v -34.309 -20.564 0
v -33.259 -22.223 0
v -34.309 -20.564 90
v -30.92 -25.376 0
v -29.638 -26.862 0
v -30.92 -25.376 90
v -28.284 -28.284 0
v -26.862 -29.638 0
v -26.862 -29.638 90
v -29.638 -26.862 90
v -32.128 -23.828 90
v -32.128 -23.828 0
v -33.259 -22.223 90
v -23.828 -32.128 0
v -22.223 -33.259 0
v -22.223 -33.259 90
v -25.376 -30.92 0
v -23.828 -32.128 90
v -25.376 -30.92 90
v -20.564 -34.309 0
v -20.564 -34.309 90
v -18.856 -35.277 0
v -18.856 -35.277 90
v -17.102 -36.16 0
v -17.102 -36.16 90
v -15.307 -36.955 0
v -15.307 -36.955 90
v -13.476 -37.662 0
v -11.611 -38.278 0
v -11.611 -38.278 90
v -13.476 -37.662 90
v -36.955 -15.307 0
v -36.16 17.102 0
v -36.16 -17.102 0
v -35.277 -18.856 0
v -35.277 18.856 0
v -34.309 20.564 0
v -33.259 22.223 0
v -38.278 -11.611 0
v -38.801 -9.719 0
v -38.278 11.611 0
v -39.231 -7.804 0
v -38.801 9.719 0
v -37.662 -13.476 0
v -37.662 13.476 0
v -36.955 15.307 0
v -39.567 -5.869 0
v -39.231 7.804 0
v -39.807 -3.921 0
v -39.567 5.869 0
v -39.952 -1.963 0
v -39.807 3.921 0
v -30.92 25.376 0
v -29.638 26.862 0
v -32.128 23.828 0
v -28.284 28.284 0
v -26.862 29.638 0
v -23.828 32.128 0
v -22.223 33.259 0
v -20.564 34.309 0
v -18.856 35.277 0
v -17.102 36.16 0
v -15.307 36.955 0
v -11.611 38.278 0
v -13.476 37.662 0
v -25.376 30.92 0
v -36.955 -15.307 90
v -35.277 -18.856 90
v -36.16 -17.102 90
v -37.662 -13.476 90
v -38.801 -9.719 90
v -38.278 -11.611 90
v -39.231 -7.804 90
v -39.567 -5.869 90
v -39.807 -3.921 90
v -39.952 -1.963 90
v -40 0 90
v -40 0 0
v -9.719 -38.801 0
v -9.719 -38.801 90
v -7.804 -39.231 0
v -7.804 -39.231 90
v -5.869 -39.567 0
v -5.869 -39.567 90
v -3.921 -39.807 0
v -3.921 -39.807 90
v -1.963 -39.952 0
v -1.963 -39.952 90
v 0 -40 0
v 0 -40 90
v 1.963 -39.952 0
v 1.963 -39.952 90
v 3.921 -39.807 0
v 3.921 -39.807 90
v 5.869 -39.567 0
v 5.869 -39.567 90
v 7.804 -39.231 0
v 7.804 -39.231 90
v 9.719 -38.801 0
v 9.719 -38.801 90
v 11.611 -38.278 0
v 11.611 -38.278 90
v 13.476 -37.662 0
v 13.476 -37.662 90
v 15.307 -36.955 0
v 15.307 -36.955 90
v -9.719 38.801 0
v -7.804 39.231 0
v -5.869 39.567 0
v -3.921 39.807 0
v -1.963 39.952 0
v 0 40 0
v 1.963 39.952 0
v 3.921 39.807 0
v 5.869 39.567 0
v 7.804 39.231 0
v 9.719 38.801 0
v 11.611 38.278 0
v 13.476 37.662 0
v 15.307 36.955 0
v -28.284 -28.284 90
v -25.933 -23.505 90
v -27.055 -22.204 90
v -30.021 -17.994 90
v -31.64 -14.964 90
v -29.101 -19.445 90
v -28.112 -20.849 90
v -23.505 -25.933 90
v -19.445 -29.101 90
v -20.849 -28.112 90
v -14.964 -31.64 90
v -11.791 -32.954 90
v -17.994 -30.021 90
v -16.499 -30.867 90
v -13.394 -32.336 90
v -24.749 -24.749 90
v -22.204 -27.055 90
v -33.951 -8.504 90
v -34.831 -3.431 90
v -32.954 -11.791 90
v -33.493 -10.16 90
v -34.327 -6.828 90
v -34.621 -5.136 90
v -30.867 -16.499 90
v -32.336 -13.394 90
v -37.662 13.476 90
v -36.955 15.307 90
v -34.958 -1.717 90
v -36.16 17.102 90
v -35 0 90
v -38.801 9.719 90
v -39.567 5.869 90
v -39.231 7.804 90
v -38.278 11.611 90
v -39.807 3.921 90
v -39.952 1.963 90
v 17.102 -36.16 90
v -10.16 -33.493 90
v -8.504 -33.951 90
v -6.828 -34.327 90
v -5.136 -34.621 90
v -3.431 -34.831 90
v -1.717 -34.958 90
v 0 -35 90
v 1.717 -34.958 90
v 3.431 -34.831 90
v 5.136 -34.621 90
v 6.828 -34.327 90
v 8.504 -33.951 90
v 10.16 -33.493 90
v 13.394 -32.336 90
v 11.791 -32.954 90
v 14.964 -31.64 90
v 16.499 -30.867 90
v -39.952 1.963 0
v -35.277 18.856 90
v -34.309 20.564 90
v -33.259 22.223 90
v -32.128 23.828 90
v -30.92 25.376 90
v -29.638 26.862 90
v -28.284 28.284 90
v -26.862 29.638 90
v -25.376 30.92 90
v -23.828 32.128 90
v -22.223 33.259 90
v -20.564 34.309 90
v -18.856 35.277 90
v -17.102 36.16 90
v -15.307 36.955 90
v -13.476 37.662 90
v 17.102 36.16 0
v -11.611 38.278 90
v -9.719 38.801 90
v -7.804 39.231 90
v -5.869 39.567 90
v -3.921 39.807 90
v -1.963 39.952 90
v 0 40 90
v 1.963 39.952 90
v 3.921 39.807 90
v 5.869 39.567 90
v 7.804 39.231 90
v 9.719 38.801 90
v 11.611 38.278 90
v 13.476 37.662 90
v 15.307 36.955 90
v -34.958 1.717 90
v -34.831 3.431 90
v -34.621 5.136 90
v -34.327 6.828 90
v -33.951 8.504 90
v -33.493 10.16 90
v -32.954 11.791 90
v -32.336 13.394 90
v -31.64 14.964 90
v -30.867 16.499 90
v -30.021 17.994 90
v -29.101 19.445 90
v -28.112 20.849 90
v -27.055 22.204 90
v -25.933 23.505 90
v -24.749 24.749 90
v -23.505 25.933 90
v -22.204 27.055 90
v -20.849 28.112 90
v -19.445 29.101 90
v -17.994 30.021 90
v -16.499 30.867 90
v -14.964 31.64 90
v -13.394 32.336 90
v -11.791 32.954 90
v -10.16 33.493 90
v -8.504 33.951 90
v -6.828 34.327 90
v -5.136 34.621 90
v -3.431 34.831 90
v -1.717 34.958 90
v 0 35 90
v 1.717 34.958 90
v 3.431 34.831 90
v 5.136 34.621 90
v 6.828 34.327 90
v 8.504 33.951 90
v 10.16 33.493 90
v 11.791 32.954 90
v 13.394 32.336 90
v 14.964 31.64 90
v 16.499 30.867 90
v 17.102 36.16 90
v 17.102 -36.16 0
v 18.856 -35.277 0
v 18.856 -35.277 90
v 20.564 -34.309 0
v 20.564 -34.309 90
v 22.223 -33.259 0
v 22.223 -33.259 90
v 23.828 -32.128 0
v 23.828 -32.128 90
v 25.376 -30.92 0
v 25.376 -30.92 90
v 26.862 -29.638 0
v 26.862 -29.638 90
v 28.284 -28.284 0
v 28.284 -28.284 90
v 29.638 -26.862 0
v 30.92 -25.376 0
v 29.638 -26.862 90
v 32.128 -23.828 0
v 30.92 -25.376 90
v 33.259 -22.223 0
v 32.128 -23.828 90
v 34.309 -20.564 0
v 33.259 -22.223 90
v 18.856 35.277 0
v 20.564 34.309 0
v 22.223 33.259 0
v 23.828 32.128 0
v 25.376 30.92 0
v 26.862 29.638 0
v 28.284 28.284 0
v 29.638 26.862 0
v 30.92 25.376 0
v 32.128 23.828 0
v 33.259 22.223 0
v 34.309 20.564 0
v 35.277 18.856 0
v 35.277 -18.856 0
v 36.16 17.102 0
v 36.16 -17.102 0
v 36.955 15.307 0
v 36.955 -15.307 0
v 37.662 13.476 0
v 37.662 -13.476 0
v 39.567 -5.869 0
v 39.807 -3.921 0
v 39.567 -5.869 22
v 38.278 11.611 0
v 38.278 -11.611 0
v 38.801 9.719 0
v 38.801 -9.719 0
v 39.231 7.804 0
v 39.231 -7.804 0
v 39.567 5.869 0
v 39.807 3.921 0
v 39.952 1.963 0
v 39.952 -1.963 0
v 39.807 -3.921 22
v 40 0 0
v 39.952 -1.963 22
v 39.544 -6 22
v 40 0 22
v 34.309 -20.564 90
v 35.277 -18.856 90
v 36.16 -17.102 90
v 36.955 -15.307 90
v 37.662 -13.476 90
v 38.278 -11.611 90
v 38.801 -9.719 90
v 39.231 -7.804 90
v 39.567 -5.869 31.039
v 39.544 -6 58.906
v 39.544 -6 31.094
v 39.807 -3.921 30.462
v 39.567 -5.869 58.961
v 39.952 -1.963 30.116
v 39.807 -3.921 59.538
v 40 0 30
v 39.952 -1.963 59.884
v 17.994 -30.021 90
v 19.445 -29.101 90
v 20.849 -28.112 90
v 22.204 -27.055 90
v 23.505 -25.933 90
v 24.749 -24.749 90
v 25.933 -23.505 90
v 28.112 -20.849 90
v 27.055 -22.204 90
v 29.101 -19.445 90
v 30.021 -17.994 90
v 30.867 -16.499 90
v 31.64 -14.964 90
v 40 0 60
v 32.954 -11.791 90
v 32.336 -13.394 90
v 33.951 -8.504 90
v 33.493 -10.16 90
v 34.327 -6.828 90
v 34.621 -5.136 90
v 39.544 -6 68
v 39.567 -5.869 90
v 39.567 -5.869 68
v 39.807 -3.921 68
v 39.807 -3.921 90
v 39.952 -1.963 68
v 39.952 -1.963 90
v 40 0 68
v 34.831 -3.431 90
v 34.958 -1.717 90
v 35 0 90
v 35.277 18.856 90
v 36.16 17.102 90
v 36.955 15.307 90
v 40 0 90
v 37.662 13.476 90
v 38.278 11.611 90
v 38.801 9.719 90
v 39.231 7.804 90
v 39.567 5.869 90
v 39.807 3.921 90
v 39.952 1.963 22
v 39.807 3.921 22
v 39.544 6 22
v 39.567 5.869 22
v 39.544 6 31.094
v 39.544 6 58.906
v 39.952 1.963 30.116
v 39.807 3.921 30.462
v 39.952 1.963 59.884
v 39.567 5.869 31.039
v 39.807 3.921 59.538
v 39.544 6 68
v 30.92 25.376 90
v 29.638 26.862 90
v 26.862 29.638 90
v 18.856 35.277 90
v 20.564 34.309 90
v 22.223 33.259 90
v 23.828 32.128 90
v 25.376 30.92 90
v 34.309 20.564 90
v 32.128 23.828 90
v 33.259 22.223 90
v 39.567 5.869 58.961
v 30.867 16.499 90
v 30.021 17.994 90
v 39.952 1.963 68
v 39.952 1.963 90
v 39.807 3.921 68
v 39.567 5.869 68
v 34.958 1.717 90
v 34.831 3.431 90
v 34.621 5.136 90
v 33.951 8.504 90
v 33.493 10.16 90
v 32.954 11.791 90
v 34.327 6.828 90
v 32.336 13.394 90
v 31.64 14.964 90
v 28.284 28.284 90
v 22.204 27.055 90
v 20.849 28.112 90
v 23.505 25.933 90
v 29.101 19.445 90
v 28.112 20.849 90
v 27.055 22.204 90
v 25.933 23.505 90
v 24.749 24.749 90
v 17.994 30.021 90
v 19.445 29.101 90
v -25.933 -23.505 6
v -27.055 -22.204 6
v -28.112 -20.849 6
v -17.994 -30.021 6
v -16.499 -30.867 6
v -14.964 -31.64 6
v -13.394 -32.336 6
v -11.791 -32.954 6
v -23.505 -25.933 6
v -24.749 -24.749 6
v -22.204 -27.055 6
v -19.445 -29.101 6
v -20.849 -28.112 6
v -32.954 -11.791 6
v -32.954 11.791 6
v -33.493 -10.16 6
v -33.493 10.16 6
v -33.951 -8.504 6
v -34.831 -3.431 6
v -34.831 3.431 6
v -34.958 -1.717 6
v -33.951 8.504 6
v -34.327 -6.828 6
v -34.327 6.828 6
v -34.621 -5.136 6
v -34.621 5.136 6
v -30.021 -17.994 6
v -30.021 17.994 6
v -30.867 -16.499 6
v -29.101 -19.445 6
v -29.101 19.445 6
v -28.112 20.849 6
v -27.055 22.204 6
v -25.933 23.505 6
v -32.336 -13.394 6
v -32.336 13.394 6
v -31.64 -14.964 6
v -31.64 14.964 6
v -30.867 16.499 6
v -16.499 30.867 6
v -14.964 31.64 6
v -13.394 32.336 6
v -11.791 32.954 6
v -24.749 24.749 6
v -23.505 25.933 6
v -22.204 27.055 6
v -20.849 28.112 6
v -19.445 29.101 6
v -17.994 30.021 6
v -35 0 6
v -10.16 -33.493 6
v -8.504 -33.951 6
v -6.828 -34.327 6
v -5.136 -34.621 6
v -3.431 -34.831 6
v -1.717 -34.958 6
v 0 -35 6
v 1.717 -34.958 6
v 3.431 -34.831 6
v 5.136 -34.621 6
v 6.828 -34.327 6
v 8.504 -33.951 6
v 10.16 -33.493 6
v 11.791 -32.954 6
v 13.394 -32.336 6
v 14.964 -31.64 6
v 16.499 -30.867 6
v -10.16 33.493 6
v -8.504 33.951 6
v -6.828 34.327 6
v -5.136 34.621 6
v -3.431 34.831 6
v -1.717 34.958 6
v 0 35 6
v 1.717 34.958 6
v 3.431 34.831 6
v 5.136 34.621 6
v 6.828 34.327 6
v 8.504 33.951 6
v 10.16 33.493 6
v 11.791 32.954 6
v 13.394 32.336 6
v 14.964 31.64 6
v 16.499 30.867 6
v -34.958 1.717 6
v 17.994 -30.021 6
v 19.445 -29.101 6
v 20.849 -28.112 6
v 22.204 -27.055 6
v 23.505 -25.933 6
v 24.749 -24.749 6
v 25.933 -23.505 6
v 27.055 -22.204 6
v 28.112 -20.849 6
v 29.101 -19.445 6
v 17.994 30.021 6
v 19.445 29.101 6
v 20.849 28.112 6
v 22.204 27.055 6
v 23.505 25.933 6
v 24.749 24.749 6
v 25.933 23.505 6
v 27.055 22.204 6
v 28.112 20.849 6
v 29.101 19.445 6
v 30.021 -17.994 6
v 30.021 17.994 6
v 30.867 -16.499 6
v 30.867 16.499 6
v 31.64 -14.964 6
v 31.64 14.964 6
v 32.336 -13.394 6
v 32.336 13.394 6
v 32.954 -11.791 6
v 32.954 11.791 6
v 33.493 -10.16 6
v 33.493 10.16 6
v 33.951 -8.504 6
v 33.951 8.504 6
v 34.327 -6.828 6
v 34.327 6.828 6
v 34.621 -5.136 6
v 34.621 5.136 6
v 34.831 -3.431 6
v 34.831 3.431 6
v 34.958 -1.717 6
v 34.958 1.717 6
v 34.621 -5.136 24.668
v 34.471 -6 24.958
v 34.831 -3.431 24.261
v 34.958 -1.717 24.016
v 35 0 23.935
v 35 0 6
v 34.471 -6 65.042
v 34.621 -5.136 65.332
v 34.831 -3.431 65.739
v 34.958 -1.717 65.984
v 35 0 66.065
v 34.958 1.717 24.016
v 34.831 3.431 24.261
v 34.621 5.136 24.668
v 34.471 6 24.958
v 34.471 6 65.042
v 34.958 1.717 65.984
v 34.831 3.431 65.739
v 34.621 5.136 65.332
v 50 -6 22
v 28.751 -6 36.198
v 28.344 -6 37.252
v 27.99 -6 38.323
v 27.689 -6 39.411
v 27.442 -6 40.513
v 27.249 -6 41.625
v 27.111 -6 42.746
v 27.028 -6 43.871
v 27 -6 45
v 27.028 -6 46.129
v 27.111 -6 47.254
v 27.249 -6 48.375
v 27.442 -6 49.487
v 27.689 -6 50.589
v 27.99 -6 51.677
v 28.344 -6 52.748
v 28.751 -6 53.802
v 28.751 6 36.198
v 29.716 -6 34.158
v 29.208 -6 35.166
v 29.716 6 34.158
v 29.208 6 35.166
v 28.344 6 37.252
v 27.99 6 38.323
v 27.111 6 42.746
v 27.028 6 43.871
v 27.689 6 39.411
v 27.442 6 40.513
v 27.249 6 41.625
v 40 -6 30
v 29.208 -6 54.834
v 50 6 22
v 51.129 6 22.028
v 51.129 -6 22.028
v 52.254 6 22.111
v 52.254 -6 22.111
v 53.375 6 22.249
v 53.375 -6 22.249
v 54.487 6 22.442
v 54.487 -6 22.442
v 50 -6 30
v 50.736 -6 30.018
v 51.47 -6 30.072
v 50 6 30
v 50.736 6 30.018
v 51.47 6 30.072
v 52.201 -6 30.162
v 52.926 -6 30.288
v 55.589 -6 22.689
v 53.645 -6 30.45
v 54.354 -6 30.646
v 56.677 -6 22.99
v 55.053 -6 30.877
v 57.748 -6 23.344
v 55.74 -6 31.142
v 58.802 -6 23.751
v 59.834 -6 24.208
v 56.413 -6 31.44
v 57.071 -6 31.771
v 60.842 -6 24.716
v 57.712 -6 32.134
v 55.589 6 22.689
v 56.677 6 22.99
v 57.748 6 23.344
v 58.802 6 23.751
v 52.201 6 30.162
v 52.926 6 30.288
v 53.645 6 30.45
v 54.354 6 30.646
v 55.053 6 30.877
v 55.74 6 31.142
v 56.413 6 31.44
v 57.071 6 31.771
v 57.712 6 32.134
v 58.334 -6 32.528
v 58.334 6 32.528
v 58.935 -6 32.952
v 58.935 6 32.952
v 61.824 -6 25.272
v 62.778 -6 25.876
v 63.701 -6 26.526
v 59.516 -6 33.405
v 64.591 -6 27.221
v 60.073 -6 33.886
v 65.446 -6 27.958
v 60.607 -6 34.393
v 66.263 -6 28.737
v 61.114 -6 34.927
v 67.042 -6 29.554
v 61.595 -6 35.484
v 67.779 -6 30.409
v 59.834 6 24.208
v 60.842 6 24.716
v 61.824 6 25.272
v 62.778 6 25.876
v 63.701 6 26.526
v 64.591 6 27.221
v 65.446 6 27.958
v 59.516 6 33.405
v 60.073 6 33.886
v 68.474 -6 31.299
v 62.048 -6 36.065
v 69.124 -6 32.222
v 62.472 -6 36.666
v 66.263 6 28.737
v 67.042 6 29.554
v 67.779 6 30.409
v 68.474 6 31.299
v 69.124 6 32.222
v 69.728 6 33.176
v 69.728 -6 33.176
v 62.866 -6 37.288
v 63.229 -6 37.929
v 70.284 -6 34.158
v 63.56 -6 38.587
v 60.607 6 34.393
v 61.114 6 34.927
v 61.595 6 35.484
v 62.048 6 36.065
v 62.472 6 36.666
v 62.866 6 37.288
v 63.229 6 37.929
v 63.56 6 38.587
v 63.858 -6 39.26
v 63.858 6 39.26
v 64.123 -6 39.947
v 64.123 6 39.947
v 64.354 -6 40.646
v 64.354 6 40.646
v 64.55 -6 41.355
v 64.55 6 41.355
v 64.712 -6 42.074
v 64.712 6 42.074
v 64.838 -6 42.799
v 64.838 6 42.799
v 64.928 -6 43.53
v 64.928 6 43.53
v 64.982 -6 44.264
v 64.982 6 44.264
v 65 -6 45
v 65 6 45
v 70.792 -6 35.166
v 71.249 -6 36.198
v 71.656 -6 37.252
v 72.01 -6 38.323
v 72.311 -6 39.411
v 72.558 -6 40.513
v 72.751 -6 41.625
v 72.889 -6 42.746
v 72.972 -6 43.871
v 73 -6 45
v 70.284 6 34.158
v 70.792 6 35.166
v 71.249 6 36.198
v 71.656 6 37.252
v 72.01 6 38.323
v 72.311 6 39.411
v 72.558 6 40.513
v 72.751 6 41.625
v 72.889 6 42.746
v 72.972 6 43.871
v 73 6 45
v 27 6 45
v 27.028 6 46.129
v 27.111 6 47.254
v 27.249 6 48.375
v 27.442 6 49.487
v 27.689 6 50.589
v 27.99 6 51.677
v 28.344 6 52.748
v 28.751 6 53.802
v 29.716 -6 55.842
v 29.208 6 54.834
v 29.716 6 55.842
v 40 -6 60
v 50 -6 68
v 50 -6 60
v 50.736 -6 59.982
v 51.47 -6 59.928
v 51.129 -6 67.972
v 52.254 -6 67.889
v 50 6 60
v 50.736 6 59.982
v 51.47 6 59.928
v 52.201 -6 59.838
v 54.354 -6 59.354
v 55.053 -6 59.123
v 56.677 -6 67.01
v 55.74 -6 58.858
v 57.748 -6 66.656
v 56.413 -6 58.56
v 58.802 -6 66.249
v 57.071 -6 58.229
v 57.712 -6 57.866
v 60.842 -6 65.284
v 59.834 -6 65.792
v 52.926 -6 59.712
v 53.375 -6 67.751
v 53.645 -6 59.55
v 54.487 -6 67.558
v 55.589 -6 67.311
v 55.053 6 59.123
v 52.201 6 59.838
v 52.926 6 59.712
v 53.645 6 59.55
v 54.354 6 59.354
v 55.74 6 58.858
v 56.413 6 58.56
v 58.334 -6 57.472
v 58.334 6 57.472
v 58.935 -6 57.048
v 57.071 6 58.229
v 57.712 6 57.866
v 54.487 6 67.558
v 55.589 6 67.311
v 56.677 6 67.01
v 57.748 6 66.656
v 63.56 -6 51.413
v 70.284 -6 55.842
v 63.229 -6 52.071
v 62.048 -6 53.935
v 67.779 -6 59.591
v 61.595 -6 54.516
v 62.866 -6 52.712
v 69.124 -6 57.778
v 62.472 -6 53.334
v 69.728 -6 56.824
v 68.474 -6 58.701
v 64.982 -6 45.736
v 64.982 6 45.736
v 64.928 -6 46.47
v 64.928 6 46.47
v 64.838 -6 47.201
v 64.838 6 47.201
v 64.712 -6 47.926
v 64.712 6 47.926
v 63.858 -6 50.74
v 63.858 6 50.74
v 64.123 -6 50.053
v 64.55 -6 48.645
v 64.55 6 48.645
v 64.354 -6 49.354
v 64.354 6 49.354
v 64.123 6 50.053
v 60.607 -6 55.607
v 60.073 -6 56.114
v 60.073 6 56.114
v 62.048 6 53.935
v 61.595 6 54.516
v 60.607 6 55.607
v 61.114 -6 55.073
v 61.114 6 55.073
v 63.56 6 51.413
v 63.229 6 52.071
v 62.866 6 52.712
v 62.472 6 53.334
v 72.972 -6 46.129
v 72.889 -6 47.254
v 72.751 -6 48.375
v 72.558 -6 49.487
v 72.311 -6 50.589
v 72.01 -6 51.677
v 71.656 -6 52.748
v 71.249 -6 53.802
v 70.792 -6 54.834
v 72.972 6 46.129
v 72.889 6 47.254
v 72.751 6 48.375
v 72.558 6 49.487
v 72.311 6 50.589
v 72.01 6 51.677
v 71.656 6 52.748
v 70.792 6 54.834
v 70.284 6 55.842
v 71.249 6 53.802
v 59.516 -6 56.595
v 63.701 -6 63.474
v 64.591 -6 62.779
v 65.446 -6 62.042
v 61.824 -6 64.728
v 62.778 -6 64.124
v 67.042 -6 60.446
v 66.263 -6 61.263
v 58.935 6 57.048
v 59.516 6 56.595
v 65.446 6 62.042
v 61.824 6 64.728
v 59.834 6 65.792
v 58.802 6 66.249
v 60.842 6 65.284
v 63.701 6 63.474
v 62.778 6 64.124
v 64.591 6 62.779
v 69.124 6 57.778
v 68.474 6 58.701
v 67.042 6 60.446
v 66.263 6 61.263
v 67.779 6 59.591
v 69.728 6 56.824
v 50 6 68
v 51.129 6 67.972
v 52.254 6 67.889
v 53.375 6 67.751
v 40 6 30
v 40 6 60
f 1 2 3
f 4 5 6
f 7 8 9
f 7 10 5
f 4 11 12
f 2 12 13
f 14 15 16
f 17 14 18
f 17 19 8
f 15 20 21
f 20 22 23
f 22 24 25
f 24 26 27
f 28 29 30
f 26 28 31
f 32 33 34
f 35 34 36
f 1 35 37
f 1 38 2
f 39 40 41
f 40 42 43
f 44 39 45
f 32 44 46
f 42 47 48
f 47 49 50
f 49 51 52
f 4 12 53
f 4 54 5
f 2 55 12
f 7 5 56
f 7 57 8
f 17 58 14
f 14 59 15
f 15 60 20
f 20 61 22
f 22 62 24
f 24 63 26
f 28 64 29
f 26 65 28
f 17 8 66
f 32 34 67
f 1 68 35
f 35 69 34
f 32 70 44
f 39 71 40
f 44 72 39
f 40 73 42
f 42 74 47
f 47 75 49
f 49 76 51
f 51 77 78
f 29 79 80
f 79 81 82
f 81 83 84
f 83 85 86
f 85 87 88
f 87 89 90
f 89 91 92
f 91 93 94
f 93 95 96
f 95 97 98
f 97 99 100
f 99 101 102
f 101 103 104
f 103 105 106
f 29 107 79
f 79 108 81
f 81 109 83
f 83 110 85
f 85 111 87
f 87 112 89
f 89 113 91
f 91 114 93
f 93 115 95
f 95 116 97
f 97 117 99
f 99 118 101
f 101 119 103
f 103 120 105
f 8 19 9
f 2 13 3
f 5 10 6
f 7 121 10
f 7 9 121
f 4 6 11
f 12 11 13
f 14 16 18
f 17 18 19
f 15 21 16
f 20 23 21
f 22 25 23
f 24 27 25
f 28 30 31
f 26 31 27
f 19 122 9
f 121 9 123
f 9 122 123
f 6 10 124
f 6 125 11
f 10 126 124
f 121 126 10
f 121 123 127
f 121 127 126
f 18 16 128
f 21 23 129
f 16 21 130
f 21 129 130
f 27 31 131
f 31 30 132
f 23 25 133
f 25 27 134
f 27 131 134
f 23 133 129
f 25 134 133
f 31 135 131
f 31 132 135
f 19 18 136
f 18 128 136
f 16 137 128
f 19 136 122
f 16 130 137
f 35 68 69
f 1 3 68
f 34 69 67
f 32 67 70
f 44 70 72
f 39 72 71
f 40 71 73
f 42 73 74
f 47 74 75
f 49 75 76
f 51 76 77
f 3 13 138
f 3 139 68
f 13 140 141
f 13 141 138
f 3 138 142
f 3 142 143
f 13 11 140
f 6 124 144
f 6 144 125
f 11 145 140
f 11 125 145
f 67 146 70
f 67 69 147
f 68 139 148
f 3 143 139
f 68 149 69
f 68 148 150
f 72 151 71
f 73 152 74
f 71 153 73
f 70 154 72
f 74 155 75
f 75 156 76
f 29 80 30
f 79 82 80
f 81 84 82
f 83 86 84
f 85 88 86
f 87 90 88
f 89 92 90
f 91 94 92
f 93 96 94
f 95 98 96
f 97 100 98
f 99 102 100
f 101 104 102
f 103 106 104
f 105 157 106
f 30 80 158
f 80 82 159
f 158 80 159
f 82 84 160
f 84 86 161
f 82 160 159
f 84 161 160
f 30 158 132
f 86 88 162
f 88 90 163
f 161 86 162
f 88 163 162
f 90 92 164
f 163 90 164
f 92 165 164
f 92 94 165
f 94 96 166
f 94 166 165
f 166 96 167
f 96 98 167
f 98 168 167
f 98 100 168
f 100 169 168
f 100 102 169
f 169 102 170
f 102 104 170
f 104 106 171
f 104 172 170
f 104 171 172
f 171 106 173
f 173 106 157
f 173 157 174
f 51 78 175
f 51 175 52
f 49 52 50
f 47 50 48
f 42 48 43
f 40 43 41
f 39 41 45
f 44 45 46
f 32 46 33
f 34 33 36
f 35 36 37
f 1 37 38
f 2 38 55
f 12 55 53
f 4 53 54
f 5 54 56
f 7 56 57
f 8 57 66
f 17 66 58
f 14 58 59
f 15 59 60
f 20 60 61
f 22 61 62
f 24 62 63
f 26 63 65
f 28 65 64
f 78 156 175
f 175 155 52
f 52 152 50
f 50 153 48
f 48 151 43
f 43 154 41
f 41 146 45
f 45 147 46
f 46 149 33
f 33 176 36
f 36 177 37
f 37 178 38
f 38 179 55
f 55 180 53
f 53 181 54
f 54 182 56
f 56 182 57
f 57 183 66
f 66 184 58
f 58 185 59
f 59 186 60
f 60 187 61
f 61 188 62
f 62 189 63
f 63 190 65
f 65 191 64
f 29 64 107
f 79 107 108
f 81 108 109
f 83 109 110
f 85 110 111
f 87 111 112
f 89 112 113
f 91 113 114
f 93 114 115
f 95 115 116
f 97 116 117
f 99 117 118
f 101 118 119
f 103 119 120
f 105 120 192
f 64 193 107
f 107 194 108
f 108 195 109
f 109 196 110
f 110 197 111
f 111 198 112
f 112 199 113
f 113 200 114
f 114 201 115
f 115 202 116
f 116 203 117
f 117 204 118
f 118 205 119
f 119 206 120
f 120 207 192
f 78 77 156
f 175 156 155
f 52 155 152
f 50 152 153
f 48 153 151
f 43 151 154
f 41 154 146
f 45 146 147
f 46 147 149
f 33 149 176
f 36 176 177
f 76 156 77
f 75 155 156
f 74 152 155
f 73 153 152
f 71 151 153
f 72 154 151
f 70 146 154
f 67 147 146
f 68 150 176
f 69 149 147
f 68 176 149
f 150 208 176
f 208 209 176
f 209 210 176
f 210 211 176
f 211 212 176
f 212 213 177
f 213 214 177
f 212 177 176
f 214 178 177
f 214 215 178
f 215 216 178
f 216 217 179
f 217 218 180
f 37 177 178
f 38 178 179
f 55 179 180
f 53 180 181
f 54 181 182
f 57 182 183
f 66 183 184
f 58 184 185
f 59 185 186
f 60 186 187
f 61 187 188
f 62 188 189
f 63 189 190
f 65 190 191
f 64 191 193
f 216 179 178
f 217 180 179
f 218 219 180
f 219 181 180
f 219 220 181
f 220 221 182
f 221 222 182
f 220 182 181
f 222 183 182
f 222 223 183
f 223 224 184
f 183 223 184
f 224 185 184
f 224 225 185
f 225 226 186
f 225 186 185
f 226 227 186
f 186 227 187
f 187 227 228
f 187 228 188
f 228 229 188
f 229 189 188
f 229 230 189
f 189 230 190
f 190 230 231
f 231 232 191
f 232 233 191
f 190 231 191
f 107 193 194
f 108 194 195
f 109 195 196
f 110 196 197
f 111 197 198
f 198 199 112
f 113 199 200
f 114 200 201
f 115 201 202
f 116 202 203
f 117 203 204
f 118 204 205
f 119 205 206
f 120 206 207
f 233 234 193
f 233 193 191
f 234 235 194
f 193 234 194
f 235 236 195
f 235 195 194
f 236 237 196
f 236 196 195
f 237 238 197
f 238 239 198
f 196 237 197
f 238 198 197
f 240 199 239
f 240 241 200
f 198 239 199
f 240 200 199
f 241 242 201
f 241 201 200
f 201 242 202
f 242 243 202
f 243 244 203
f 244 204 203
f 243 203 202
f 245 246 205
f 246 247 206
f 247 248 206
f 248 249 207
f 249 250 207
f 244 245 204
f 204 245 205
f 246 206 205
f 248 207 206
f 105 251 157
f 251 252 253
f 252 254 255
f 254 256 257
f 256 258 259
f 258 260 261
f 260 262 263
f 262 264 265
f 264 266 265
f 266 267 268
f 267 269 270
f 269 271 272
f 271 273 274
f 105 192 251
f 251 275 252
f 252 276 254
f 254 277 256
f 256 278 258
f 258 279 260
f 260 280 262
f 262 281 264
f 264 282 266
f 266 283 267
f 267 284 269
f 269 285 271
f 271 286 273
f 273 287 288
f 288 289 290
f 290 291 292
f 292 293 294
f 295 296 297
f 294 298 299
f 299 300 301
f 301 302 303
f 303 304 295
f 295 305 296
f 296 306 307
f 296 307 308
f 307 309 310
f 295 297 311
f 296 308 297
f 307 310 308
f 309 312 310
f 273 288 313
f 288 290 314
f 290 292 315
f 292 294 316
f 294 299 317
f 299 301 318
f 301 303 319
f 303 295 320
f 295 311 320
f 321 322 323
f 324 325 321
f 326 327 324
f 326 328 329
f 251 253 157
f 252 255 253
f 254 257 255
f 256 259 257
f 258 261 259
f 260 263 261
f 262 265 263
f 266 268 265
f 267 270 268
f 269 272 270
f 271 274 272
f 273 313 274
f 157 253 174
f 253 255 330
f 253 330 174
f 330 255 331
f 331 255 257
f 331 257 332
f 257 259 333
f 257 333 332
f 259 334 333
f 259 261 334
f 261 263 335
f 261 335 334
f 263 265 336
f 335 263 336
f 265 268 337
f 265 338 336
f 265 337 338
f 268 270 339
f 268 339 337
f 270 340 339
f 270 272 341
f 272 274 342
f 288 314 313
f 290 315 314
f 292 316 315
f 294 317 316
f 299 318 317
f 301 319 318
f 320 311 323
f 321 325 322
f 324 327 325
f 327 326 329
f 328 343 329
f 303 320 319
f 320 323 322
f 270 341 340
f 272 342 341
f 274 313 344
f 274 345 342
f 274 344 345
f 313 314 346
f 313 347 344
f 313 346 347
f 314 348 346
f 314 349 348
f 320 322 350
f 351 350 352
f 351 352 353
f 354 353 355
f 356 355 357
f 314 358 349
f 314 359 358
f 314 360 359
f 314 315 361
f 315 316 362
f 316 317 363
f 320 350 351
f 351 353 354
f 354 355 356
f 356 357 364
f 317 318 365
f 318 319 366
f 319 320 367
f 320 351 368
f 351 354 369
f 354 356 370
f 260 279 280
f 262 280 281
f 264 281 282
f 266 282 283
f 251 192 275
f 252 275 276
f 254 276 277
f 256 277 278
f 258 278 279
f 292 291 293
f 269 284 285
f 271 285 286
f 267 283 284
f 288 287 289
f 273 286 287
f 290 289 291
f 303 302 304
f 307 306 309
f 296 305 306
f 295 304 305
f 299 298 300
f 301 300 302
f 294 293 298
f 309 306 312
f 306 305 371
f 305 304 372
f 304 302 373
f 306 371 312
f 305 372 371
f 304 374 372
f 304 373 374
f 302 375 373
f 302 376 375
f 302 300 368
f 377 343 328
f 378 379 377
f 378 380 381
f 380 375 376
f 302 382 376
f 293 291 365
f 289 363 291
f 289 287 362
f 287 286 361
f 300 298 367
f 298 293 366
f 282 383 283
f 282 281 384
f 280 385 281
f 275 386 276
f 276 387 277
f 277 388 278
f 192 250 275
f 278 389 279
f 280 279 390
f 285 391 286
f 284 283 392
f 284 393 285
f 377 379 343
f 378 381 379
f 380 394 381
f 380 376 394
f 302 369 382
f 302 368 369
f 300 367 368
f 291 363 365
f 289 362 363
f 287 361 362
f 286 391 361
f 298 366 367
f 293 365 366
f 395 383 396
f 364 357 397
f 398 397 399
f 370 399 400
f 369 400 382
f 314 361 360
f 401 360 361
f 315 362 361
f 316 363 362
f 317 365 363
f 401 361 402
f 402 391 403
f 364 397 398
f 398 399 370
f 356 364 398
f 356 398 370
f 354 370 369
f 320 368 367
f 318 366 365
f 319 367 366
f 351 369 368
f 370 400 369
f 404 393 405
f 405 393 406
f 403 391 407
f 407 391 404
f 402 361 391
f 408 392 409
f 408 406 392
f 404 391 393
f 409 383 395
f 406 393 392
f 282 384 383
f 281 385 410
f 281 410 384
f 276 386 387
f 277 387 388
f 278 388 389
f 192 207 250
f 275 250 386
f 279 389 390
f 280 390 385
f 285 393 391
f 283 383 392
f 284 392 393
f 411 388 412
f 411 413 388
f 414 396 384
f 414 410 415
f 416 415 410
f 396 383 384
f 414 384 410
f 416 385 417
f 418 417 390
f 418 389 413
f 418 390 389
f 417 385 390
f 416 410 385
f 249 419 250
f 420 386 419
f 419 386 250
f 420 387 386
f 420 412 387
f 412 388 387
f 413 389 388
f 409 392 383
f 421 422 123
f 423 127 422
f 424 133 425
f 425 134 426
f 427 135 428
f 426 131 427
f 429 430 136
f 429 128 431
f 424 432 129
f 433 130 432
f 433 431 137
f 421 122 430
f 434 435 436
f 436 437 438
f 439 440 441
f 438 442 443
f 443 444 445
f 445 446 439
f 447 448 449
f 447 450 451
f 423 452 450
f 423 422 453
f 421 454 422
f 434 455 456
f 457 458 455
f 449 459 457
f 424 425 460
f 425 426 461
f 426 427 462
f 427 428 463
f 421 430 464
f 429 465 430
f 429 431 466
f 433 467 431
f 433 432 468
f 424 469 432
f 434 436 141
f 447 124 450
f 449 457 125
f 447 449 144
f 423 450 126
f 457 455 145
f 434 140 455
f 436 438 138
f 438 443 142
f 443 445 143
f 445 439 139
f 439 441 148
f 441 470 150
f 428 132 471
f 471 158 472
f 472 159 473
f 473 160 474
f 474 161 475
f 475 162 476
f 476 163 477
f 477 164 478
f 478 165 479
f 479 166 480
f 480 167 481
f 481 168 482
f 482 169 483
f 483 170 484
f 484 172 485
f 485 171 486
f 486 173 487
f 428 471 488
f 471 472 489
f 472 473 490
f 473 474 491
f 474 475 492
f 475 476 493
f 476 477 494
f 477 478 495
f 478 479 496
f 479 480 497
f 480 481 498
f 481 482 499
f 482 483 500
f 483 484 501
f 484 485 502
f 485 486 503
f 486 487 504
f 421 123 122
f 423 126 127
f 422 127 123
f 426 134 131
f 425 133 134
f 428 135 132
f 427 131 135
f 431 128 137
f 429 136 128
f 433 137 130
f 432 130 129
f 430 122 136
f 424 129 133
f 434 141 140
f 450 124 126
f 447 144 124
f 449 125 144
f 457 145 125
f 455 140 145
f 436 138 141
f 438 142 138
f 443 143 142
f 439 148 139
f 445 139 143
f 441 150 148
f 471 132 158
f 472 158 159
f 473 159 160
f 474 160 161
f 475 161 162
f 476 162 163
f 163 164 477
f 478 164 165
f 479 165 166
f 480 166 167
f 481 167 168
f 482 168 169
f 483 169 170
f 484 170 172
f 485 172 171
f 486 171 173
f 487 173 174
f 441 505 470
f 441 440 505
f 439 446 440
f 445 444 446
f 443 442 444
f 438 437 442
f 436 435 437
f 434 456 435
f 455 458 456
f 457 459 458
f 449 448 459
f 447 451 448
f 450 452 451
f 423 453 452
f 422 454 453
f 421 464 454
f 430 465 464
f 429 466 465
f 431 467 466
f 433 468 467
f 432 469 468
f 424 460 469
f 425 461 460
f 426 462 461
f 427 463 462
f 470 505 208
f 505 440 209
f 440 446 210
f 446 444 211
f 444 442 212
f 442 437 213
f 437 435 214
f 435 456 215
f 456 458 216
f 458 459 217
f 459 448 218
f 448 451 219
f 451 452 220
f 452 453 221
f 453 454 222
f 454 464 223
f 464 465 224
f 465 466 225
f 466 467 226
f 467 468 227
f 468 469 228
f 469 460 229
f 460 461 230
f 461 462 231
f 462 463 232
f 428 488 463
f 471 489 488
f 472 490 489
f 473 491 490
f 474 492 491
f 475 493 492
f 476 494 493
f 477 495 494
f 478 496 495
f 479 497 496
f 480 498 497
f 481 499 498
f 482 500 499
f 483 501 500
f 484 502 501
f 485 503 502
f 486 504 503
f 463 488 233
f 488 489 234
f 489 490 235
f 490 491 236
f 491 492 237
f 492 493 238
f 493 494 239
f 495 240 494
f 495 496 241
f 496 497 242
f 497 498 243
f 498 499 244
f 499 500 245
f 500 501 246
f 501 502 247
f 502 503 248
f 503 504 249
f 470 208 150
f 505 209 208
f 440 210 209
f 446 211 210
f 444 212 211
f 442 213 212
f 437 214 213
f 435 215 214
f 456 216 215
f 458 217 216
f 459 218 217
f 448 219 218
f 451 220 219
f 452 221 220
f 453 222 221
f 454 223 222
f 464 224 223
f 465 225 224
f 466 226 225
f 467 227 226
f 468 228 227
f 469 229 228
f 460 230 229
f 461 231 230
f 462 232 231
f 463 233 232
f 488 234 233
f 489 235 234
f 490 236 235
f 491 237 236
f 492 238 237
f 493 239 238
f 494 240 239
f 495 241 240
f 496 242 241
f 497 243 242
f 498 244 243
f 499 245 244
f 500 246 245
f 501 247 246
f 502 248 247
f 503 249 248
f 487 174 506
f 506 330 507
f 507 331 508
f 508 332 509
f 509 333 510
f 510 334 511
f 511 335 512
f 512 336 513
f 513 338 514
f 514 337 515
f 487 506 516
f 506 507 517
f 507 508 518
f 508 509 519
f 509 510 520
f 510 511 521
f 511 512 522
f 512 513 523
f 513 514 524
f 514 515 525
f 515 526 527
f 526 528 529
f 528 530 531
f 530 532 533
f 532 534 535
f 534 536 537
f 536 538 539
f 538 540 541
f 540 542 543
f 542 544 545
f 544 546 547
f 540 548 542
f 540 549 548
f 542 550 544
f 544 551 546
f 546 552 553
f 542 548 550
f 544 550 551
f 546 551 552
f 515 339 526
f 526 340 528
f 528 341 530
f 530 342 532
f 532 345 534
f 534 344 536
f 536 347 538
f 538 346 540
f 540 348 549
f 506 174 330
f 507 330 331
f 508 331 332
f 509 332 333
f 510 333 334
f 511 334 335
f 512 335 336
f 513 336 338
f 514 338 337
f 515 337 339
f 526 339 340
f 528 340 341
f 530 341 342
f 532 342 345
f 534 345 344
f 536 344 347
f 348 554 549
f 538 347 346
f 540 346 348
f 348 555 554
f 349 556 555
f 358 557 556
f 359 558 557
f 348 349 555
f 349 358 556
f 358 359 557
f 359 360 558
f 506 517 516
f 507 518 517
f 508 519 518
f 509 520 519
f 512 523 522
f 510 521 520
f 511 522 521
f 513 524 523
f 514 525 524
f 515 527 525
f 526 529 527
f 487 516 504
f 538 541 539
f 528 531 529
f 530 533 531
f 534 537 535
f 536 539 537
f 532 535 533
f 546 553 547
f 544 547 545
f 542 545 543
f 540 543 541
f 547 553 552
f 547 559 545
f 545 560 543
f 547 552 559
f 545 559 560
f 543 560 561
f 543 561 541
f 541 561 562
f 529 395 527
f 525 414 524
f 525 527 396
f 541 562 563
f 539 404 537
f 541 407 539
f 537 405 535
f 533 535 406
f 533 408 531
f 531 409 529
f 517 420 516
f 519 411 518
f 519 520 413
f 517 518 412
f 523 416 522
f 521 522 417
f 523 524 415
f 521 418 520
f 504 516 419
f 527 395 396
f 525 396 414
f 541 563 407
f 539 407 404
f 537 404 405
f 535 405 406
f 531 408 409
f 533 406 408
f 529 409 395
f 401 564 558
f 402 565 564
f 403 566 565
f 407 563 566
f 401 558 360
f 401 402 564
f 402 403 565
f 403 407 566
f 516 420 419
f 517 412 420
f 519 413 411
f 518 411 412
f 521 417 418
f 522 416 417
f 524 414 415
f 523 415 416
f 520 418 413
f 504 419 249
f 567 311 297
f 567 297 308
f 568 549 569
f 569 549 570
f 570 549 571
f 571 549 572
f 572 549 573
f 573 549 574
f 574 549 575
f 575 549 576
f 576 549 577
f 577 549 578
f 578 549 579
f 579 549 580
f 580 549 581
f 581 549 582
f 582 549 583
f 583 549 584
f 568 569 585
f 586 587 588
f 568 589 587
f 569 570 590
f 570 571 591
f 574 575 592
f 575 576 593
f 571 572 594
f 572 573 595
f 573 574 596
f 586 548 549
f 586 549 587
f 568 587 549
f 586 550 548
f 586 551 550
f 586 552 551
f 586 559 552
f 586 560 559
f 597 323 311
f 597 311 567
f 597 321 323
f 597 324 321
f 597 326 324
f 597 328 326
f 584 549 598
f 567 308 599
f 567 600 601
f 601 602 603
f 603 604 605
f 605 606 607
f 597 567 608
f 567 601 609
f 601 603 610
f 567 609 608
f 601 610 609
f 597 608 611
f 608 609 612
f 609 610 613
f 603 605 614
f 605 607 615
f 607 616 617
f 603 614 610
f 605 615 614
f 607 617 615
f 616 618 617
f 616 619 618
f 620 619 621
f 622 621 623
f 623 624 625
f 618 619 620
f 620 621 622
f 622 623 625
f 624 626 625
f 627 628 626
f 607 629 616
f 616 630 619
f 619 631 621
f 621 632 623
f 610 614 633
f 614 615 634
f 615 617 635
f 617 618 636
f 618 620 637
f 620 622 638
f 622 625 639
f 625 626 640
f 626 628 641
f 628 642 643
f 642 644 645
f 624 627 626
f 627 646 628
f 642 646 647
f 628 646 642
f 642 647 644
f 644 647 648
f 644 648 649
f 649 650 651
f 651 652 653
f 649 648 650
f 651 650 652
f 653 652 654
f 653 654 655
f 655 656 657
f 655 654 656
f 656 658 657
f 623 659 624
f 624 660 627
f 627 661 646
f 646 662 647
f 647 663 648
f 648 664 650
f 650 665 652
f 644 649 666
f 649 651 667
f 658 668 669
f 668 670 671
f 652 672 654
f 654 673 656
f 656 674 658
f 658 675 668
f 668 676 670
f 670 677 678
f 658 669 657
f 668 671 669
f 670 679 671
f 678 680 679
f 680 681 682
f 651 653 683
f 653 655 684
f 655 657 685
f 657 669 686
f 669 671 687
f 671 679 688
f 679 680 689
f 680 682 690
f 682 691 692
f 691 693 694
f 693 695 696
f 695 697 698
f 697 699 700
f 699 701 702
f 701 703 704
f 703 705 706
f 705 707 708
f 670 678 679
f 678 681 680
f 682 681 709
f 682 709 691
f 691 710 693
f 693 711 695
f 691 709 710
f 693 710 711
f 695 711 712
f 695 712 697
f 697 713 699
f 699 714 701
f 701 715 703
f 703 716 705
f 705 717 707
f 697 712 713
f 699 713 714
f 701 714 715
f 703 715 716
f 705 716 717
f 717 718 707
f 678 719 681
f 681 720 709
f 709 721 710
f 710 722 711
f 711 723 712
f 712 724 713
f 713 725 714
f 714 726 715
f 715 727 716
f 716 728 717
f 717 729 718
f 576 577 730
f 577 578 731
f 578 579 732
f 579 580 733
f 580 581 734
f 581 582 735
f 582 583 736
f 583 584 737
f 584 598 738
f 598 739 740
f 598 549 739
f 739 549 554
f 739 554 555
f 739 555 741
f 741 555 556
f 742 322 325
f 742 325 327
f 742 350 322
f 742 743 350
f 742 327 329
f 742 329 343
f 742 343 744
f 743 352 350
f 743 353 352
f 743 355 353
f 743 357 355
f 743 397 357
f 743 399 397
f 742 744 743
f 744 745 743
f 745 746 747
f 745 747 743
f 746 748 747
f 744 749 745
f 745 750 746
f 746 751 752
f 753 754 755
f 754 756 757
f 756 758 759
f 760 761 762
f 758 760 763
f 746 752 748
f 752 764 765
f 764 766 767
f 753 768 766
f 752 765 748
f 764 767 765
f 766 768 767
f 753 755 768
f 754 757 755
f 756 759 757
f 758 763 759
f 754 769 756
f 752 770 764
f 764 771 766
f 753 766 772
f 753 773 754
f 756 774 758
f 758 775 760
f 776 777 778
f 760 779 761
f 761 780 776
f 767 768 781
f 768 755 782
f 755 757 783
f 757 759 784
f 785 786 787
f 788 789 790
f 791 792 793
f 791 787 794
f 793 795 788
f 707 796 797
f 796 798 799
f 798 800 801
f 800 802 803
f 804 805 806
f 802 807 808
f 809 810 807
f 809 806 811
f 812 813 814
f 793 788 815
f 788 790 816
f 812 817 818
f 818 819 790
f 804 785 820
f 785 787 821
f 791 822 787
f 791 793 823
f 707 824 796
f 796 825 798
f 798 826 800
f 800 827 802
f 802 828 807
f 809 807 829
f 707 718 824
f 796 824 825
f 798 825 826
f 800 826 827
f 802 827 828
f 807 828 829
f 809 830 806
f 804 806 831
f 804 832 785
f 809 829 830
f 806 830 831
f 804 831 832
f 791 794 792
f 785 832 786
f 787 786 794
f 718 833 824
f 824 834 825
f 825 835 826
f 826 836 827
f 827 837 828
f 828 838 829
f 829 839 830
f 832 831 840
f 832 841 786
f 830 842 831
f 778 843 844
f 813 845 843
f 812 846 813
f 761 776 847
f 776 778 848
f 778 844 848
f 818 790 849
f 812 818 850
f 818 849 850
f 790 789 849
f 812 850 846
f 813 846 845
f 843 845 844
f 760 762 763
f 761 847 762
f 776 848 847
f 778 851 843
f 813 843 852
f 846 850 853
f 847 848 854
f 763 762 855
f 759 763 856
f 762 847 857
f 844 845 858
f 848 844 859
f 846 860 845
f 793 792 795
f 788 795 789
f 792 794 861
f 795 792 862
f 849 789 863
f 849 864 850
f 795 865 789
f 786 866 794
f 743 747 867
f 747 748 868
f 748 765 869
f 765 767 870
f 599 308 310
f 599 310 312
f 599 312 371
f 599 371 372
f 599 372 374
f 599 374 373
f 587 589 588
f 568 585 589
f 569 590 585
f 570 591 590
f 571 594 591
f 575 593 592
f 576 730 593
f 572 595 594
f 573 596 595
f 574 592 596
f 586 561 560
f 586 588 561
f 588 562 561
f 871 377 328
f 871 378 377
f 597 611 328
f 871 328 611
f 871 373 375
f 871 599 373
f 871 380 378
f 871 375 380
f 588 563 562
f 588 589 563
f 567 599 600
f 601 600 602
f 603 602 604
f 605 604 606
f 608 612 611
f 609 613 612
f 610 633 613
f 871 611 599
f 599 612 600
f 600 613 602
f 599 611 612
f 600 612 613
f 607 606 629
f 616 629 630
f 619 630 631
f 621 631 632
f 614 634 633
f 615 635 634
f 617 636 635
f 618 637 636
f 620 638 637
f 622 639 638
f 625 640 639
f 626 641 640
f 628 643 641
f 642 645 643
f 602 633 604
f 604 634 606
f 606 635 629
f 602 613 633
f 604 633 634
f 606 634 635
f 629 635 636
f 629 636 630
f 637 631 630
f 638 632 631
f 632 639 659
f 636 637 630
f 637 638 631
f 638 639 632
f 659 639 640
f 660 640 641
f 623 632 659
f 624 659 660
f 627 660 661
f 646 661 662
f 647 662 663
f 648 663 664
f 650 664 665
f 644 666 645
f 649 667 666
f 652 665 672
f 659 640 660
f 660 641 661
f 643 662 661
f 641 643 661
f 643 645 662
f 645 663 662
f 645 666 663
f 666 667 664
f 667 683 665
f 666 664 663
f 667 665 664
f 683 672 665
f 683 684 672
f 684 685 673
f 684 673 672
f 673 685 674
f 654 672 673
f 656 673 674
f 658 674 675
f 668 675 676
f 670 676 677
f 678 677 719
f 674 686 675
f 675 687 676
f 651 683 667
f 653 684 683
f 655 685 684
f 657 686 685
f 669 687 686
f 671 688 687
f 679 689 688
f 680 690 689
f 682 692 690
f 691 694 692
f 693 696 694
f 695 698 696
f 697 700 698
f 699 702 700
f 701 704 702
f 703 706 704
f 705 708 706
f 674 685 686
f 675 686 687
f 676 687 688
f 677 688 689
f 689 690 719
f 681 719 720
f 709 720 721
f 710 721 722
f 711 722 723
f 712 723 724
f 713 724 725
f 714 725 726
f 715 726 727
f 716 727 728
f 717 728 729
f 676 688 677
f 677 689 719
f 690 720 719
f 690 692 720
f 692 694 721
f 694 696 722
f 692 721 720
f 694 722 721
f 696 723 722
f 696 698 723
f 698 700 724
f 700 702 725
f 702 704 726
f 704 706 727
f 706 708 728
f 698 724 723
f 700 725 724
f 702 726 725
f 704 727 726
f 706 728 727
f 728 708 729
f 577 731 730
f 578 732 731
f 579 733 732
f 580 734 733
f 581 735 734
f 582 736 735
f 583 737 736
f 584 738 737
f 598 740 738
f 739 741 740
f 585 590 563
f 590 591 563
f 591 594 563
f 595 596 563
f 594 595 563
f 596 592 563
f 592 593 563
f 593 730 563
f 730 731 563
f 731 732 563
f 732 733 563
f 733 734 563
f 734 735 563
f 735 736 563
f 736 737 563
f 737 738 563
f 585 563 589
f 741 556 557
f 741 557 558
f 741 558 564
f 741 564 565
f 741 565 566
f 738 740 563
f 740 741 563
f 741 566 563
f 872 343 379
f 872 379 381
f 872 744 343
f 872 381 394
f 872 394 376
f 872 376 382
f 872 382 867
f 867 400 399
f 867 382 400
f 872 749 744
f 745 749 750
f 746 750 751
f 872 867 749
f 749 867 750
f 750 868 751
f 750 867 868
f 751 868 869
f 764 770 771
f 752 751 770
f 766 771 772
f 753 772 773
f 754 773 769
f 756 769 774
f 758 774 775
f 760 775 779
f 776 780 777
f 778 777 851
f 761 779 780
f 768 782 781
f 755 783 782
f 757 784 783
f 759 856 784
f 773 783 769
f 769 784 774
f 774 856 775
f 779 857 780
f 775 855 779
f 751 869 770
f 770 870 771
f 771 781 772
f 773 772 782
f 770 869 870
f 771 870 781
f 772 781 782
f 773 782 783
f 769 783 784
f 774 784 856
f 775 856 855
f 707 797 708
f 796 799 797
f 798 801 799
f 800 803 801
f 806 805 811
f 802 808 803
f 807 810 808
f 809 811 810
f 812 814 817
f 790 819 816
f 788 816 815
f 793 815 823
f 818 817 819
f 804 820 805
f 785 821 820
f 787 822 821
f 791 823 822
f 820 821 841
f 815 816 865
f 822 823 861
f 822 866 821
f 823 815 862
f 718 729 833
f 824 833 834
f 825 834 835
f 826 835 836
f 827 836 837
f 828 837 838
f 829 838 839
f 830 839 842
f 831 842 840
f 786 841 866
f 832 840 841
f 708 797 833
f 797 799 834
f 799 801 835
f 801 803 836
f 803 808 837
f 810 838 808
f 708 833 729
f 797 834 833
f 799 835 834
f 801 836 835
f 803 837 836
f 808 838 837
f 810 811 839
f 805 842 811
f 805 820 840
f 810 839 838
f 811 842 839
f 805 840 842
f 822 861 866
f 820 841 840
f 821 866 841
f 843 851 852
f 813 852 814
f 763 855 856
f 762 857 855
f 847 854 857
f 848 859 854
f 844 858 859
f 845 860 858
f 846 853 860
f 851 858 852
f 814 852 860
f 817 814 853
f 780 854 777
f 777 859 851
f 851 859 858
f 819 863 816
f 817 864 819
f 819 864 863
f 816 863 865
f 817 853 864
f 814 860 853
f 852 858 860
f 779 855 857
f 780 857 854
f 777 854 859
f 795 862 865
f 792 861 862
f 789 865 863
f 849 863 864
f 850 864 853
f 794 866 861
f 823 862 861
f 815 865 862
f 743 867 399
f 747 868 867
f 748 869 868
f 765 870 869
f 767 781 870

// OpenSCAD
// ===============================
// マグカップ(取手は +X 方向のみ)
// ===============================
$fn = 128;

// ---- 本体パラメータ ----
outer_d  = 80;   // 外径
inner_d  = 70;   // 内径(肉厚 5mm)
mug_h    = 90;   // 高さ
bottom_t = 6;    // 底面の厚み

// ---- 取手パラメータ ----
grip_h       = 30;  // 取手内側の空間 高さ
grip_w       = 25;  // 取手内側の空間 幅
handle_t     = 8;   // 取手の材料厚(リングの太さ)
handle_depth = 12;  // 取手の奥行き(Y 方向)
embed        = 4;   // 本体壁への食い込み量(マニフォールド確保)
handle_z     = mug_h / 2;  // 高さ方向中央に配置

R = outer_d / 2;  // 外半径 40

// ---- 本体(中空マグ) ----
module mug_body() {
    difference() {
        cylinder(h = mug_h, d = outer_d);
        // 内側をくり抜く(底は bottom_t 残す)
        translate([0, 0, bottom_t])
            cylinder(h = mug_h, d = inner_d);
    }
}

// ---- 2D D字形状 ----
// straight_x : 直線辺(本体側)の X 位置
// width      : 直線辺から外端までの幅
// half_h     : 高さの半分(半円の半径)
module d_shape(straight_x, width, half_h) {
    hull() {
        // 本体側の直線辺
        translate([straight_x, -half_h])
            square([0.01, 2 * half_h]);
        // 外側の半円
        translate([straight_x + width - half_h, 0])
            circle(r = half_h);
    }
}

// ---- 取手(D字リング、+X 方向) ----
module handle() {
    rotate([90, 0, 0])
        linear_extrude(height = handle_depth, center = true)
            difference() {
                // 外側 D(本体壁内 x = R - embed まで食い込ませる)
                d_shape(R - embed, grip_w + handle_t + embed, grip_h / 2 + handle_t);
                // 内側 D(指の入る空間: 幅 25 × 高さ 30)
                d_shape(R, grip_w, grip_h / 2);
            }
}

// ---- 組み立て ----
union() {
    mug_body();
    translate([0, 0, handle_z])
        handle();
}
